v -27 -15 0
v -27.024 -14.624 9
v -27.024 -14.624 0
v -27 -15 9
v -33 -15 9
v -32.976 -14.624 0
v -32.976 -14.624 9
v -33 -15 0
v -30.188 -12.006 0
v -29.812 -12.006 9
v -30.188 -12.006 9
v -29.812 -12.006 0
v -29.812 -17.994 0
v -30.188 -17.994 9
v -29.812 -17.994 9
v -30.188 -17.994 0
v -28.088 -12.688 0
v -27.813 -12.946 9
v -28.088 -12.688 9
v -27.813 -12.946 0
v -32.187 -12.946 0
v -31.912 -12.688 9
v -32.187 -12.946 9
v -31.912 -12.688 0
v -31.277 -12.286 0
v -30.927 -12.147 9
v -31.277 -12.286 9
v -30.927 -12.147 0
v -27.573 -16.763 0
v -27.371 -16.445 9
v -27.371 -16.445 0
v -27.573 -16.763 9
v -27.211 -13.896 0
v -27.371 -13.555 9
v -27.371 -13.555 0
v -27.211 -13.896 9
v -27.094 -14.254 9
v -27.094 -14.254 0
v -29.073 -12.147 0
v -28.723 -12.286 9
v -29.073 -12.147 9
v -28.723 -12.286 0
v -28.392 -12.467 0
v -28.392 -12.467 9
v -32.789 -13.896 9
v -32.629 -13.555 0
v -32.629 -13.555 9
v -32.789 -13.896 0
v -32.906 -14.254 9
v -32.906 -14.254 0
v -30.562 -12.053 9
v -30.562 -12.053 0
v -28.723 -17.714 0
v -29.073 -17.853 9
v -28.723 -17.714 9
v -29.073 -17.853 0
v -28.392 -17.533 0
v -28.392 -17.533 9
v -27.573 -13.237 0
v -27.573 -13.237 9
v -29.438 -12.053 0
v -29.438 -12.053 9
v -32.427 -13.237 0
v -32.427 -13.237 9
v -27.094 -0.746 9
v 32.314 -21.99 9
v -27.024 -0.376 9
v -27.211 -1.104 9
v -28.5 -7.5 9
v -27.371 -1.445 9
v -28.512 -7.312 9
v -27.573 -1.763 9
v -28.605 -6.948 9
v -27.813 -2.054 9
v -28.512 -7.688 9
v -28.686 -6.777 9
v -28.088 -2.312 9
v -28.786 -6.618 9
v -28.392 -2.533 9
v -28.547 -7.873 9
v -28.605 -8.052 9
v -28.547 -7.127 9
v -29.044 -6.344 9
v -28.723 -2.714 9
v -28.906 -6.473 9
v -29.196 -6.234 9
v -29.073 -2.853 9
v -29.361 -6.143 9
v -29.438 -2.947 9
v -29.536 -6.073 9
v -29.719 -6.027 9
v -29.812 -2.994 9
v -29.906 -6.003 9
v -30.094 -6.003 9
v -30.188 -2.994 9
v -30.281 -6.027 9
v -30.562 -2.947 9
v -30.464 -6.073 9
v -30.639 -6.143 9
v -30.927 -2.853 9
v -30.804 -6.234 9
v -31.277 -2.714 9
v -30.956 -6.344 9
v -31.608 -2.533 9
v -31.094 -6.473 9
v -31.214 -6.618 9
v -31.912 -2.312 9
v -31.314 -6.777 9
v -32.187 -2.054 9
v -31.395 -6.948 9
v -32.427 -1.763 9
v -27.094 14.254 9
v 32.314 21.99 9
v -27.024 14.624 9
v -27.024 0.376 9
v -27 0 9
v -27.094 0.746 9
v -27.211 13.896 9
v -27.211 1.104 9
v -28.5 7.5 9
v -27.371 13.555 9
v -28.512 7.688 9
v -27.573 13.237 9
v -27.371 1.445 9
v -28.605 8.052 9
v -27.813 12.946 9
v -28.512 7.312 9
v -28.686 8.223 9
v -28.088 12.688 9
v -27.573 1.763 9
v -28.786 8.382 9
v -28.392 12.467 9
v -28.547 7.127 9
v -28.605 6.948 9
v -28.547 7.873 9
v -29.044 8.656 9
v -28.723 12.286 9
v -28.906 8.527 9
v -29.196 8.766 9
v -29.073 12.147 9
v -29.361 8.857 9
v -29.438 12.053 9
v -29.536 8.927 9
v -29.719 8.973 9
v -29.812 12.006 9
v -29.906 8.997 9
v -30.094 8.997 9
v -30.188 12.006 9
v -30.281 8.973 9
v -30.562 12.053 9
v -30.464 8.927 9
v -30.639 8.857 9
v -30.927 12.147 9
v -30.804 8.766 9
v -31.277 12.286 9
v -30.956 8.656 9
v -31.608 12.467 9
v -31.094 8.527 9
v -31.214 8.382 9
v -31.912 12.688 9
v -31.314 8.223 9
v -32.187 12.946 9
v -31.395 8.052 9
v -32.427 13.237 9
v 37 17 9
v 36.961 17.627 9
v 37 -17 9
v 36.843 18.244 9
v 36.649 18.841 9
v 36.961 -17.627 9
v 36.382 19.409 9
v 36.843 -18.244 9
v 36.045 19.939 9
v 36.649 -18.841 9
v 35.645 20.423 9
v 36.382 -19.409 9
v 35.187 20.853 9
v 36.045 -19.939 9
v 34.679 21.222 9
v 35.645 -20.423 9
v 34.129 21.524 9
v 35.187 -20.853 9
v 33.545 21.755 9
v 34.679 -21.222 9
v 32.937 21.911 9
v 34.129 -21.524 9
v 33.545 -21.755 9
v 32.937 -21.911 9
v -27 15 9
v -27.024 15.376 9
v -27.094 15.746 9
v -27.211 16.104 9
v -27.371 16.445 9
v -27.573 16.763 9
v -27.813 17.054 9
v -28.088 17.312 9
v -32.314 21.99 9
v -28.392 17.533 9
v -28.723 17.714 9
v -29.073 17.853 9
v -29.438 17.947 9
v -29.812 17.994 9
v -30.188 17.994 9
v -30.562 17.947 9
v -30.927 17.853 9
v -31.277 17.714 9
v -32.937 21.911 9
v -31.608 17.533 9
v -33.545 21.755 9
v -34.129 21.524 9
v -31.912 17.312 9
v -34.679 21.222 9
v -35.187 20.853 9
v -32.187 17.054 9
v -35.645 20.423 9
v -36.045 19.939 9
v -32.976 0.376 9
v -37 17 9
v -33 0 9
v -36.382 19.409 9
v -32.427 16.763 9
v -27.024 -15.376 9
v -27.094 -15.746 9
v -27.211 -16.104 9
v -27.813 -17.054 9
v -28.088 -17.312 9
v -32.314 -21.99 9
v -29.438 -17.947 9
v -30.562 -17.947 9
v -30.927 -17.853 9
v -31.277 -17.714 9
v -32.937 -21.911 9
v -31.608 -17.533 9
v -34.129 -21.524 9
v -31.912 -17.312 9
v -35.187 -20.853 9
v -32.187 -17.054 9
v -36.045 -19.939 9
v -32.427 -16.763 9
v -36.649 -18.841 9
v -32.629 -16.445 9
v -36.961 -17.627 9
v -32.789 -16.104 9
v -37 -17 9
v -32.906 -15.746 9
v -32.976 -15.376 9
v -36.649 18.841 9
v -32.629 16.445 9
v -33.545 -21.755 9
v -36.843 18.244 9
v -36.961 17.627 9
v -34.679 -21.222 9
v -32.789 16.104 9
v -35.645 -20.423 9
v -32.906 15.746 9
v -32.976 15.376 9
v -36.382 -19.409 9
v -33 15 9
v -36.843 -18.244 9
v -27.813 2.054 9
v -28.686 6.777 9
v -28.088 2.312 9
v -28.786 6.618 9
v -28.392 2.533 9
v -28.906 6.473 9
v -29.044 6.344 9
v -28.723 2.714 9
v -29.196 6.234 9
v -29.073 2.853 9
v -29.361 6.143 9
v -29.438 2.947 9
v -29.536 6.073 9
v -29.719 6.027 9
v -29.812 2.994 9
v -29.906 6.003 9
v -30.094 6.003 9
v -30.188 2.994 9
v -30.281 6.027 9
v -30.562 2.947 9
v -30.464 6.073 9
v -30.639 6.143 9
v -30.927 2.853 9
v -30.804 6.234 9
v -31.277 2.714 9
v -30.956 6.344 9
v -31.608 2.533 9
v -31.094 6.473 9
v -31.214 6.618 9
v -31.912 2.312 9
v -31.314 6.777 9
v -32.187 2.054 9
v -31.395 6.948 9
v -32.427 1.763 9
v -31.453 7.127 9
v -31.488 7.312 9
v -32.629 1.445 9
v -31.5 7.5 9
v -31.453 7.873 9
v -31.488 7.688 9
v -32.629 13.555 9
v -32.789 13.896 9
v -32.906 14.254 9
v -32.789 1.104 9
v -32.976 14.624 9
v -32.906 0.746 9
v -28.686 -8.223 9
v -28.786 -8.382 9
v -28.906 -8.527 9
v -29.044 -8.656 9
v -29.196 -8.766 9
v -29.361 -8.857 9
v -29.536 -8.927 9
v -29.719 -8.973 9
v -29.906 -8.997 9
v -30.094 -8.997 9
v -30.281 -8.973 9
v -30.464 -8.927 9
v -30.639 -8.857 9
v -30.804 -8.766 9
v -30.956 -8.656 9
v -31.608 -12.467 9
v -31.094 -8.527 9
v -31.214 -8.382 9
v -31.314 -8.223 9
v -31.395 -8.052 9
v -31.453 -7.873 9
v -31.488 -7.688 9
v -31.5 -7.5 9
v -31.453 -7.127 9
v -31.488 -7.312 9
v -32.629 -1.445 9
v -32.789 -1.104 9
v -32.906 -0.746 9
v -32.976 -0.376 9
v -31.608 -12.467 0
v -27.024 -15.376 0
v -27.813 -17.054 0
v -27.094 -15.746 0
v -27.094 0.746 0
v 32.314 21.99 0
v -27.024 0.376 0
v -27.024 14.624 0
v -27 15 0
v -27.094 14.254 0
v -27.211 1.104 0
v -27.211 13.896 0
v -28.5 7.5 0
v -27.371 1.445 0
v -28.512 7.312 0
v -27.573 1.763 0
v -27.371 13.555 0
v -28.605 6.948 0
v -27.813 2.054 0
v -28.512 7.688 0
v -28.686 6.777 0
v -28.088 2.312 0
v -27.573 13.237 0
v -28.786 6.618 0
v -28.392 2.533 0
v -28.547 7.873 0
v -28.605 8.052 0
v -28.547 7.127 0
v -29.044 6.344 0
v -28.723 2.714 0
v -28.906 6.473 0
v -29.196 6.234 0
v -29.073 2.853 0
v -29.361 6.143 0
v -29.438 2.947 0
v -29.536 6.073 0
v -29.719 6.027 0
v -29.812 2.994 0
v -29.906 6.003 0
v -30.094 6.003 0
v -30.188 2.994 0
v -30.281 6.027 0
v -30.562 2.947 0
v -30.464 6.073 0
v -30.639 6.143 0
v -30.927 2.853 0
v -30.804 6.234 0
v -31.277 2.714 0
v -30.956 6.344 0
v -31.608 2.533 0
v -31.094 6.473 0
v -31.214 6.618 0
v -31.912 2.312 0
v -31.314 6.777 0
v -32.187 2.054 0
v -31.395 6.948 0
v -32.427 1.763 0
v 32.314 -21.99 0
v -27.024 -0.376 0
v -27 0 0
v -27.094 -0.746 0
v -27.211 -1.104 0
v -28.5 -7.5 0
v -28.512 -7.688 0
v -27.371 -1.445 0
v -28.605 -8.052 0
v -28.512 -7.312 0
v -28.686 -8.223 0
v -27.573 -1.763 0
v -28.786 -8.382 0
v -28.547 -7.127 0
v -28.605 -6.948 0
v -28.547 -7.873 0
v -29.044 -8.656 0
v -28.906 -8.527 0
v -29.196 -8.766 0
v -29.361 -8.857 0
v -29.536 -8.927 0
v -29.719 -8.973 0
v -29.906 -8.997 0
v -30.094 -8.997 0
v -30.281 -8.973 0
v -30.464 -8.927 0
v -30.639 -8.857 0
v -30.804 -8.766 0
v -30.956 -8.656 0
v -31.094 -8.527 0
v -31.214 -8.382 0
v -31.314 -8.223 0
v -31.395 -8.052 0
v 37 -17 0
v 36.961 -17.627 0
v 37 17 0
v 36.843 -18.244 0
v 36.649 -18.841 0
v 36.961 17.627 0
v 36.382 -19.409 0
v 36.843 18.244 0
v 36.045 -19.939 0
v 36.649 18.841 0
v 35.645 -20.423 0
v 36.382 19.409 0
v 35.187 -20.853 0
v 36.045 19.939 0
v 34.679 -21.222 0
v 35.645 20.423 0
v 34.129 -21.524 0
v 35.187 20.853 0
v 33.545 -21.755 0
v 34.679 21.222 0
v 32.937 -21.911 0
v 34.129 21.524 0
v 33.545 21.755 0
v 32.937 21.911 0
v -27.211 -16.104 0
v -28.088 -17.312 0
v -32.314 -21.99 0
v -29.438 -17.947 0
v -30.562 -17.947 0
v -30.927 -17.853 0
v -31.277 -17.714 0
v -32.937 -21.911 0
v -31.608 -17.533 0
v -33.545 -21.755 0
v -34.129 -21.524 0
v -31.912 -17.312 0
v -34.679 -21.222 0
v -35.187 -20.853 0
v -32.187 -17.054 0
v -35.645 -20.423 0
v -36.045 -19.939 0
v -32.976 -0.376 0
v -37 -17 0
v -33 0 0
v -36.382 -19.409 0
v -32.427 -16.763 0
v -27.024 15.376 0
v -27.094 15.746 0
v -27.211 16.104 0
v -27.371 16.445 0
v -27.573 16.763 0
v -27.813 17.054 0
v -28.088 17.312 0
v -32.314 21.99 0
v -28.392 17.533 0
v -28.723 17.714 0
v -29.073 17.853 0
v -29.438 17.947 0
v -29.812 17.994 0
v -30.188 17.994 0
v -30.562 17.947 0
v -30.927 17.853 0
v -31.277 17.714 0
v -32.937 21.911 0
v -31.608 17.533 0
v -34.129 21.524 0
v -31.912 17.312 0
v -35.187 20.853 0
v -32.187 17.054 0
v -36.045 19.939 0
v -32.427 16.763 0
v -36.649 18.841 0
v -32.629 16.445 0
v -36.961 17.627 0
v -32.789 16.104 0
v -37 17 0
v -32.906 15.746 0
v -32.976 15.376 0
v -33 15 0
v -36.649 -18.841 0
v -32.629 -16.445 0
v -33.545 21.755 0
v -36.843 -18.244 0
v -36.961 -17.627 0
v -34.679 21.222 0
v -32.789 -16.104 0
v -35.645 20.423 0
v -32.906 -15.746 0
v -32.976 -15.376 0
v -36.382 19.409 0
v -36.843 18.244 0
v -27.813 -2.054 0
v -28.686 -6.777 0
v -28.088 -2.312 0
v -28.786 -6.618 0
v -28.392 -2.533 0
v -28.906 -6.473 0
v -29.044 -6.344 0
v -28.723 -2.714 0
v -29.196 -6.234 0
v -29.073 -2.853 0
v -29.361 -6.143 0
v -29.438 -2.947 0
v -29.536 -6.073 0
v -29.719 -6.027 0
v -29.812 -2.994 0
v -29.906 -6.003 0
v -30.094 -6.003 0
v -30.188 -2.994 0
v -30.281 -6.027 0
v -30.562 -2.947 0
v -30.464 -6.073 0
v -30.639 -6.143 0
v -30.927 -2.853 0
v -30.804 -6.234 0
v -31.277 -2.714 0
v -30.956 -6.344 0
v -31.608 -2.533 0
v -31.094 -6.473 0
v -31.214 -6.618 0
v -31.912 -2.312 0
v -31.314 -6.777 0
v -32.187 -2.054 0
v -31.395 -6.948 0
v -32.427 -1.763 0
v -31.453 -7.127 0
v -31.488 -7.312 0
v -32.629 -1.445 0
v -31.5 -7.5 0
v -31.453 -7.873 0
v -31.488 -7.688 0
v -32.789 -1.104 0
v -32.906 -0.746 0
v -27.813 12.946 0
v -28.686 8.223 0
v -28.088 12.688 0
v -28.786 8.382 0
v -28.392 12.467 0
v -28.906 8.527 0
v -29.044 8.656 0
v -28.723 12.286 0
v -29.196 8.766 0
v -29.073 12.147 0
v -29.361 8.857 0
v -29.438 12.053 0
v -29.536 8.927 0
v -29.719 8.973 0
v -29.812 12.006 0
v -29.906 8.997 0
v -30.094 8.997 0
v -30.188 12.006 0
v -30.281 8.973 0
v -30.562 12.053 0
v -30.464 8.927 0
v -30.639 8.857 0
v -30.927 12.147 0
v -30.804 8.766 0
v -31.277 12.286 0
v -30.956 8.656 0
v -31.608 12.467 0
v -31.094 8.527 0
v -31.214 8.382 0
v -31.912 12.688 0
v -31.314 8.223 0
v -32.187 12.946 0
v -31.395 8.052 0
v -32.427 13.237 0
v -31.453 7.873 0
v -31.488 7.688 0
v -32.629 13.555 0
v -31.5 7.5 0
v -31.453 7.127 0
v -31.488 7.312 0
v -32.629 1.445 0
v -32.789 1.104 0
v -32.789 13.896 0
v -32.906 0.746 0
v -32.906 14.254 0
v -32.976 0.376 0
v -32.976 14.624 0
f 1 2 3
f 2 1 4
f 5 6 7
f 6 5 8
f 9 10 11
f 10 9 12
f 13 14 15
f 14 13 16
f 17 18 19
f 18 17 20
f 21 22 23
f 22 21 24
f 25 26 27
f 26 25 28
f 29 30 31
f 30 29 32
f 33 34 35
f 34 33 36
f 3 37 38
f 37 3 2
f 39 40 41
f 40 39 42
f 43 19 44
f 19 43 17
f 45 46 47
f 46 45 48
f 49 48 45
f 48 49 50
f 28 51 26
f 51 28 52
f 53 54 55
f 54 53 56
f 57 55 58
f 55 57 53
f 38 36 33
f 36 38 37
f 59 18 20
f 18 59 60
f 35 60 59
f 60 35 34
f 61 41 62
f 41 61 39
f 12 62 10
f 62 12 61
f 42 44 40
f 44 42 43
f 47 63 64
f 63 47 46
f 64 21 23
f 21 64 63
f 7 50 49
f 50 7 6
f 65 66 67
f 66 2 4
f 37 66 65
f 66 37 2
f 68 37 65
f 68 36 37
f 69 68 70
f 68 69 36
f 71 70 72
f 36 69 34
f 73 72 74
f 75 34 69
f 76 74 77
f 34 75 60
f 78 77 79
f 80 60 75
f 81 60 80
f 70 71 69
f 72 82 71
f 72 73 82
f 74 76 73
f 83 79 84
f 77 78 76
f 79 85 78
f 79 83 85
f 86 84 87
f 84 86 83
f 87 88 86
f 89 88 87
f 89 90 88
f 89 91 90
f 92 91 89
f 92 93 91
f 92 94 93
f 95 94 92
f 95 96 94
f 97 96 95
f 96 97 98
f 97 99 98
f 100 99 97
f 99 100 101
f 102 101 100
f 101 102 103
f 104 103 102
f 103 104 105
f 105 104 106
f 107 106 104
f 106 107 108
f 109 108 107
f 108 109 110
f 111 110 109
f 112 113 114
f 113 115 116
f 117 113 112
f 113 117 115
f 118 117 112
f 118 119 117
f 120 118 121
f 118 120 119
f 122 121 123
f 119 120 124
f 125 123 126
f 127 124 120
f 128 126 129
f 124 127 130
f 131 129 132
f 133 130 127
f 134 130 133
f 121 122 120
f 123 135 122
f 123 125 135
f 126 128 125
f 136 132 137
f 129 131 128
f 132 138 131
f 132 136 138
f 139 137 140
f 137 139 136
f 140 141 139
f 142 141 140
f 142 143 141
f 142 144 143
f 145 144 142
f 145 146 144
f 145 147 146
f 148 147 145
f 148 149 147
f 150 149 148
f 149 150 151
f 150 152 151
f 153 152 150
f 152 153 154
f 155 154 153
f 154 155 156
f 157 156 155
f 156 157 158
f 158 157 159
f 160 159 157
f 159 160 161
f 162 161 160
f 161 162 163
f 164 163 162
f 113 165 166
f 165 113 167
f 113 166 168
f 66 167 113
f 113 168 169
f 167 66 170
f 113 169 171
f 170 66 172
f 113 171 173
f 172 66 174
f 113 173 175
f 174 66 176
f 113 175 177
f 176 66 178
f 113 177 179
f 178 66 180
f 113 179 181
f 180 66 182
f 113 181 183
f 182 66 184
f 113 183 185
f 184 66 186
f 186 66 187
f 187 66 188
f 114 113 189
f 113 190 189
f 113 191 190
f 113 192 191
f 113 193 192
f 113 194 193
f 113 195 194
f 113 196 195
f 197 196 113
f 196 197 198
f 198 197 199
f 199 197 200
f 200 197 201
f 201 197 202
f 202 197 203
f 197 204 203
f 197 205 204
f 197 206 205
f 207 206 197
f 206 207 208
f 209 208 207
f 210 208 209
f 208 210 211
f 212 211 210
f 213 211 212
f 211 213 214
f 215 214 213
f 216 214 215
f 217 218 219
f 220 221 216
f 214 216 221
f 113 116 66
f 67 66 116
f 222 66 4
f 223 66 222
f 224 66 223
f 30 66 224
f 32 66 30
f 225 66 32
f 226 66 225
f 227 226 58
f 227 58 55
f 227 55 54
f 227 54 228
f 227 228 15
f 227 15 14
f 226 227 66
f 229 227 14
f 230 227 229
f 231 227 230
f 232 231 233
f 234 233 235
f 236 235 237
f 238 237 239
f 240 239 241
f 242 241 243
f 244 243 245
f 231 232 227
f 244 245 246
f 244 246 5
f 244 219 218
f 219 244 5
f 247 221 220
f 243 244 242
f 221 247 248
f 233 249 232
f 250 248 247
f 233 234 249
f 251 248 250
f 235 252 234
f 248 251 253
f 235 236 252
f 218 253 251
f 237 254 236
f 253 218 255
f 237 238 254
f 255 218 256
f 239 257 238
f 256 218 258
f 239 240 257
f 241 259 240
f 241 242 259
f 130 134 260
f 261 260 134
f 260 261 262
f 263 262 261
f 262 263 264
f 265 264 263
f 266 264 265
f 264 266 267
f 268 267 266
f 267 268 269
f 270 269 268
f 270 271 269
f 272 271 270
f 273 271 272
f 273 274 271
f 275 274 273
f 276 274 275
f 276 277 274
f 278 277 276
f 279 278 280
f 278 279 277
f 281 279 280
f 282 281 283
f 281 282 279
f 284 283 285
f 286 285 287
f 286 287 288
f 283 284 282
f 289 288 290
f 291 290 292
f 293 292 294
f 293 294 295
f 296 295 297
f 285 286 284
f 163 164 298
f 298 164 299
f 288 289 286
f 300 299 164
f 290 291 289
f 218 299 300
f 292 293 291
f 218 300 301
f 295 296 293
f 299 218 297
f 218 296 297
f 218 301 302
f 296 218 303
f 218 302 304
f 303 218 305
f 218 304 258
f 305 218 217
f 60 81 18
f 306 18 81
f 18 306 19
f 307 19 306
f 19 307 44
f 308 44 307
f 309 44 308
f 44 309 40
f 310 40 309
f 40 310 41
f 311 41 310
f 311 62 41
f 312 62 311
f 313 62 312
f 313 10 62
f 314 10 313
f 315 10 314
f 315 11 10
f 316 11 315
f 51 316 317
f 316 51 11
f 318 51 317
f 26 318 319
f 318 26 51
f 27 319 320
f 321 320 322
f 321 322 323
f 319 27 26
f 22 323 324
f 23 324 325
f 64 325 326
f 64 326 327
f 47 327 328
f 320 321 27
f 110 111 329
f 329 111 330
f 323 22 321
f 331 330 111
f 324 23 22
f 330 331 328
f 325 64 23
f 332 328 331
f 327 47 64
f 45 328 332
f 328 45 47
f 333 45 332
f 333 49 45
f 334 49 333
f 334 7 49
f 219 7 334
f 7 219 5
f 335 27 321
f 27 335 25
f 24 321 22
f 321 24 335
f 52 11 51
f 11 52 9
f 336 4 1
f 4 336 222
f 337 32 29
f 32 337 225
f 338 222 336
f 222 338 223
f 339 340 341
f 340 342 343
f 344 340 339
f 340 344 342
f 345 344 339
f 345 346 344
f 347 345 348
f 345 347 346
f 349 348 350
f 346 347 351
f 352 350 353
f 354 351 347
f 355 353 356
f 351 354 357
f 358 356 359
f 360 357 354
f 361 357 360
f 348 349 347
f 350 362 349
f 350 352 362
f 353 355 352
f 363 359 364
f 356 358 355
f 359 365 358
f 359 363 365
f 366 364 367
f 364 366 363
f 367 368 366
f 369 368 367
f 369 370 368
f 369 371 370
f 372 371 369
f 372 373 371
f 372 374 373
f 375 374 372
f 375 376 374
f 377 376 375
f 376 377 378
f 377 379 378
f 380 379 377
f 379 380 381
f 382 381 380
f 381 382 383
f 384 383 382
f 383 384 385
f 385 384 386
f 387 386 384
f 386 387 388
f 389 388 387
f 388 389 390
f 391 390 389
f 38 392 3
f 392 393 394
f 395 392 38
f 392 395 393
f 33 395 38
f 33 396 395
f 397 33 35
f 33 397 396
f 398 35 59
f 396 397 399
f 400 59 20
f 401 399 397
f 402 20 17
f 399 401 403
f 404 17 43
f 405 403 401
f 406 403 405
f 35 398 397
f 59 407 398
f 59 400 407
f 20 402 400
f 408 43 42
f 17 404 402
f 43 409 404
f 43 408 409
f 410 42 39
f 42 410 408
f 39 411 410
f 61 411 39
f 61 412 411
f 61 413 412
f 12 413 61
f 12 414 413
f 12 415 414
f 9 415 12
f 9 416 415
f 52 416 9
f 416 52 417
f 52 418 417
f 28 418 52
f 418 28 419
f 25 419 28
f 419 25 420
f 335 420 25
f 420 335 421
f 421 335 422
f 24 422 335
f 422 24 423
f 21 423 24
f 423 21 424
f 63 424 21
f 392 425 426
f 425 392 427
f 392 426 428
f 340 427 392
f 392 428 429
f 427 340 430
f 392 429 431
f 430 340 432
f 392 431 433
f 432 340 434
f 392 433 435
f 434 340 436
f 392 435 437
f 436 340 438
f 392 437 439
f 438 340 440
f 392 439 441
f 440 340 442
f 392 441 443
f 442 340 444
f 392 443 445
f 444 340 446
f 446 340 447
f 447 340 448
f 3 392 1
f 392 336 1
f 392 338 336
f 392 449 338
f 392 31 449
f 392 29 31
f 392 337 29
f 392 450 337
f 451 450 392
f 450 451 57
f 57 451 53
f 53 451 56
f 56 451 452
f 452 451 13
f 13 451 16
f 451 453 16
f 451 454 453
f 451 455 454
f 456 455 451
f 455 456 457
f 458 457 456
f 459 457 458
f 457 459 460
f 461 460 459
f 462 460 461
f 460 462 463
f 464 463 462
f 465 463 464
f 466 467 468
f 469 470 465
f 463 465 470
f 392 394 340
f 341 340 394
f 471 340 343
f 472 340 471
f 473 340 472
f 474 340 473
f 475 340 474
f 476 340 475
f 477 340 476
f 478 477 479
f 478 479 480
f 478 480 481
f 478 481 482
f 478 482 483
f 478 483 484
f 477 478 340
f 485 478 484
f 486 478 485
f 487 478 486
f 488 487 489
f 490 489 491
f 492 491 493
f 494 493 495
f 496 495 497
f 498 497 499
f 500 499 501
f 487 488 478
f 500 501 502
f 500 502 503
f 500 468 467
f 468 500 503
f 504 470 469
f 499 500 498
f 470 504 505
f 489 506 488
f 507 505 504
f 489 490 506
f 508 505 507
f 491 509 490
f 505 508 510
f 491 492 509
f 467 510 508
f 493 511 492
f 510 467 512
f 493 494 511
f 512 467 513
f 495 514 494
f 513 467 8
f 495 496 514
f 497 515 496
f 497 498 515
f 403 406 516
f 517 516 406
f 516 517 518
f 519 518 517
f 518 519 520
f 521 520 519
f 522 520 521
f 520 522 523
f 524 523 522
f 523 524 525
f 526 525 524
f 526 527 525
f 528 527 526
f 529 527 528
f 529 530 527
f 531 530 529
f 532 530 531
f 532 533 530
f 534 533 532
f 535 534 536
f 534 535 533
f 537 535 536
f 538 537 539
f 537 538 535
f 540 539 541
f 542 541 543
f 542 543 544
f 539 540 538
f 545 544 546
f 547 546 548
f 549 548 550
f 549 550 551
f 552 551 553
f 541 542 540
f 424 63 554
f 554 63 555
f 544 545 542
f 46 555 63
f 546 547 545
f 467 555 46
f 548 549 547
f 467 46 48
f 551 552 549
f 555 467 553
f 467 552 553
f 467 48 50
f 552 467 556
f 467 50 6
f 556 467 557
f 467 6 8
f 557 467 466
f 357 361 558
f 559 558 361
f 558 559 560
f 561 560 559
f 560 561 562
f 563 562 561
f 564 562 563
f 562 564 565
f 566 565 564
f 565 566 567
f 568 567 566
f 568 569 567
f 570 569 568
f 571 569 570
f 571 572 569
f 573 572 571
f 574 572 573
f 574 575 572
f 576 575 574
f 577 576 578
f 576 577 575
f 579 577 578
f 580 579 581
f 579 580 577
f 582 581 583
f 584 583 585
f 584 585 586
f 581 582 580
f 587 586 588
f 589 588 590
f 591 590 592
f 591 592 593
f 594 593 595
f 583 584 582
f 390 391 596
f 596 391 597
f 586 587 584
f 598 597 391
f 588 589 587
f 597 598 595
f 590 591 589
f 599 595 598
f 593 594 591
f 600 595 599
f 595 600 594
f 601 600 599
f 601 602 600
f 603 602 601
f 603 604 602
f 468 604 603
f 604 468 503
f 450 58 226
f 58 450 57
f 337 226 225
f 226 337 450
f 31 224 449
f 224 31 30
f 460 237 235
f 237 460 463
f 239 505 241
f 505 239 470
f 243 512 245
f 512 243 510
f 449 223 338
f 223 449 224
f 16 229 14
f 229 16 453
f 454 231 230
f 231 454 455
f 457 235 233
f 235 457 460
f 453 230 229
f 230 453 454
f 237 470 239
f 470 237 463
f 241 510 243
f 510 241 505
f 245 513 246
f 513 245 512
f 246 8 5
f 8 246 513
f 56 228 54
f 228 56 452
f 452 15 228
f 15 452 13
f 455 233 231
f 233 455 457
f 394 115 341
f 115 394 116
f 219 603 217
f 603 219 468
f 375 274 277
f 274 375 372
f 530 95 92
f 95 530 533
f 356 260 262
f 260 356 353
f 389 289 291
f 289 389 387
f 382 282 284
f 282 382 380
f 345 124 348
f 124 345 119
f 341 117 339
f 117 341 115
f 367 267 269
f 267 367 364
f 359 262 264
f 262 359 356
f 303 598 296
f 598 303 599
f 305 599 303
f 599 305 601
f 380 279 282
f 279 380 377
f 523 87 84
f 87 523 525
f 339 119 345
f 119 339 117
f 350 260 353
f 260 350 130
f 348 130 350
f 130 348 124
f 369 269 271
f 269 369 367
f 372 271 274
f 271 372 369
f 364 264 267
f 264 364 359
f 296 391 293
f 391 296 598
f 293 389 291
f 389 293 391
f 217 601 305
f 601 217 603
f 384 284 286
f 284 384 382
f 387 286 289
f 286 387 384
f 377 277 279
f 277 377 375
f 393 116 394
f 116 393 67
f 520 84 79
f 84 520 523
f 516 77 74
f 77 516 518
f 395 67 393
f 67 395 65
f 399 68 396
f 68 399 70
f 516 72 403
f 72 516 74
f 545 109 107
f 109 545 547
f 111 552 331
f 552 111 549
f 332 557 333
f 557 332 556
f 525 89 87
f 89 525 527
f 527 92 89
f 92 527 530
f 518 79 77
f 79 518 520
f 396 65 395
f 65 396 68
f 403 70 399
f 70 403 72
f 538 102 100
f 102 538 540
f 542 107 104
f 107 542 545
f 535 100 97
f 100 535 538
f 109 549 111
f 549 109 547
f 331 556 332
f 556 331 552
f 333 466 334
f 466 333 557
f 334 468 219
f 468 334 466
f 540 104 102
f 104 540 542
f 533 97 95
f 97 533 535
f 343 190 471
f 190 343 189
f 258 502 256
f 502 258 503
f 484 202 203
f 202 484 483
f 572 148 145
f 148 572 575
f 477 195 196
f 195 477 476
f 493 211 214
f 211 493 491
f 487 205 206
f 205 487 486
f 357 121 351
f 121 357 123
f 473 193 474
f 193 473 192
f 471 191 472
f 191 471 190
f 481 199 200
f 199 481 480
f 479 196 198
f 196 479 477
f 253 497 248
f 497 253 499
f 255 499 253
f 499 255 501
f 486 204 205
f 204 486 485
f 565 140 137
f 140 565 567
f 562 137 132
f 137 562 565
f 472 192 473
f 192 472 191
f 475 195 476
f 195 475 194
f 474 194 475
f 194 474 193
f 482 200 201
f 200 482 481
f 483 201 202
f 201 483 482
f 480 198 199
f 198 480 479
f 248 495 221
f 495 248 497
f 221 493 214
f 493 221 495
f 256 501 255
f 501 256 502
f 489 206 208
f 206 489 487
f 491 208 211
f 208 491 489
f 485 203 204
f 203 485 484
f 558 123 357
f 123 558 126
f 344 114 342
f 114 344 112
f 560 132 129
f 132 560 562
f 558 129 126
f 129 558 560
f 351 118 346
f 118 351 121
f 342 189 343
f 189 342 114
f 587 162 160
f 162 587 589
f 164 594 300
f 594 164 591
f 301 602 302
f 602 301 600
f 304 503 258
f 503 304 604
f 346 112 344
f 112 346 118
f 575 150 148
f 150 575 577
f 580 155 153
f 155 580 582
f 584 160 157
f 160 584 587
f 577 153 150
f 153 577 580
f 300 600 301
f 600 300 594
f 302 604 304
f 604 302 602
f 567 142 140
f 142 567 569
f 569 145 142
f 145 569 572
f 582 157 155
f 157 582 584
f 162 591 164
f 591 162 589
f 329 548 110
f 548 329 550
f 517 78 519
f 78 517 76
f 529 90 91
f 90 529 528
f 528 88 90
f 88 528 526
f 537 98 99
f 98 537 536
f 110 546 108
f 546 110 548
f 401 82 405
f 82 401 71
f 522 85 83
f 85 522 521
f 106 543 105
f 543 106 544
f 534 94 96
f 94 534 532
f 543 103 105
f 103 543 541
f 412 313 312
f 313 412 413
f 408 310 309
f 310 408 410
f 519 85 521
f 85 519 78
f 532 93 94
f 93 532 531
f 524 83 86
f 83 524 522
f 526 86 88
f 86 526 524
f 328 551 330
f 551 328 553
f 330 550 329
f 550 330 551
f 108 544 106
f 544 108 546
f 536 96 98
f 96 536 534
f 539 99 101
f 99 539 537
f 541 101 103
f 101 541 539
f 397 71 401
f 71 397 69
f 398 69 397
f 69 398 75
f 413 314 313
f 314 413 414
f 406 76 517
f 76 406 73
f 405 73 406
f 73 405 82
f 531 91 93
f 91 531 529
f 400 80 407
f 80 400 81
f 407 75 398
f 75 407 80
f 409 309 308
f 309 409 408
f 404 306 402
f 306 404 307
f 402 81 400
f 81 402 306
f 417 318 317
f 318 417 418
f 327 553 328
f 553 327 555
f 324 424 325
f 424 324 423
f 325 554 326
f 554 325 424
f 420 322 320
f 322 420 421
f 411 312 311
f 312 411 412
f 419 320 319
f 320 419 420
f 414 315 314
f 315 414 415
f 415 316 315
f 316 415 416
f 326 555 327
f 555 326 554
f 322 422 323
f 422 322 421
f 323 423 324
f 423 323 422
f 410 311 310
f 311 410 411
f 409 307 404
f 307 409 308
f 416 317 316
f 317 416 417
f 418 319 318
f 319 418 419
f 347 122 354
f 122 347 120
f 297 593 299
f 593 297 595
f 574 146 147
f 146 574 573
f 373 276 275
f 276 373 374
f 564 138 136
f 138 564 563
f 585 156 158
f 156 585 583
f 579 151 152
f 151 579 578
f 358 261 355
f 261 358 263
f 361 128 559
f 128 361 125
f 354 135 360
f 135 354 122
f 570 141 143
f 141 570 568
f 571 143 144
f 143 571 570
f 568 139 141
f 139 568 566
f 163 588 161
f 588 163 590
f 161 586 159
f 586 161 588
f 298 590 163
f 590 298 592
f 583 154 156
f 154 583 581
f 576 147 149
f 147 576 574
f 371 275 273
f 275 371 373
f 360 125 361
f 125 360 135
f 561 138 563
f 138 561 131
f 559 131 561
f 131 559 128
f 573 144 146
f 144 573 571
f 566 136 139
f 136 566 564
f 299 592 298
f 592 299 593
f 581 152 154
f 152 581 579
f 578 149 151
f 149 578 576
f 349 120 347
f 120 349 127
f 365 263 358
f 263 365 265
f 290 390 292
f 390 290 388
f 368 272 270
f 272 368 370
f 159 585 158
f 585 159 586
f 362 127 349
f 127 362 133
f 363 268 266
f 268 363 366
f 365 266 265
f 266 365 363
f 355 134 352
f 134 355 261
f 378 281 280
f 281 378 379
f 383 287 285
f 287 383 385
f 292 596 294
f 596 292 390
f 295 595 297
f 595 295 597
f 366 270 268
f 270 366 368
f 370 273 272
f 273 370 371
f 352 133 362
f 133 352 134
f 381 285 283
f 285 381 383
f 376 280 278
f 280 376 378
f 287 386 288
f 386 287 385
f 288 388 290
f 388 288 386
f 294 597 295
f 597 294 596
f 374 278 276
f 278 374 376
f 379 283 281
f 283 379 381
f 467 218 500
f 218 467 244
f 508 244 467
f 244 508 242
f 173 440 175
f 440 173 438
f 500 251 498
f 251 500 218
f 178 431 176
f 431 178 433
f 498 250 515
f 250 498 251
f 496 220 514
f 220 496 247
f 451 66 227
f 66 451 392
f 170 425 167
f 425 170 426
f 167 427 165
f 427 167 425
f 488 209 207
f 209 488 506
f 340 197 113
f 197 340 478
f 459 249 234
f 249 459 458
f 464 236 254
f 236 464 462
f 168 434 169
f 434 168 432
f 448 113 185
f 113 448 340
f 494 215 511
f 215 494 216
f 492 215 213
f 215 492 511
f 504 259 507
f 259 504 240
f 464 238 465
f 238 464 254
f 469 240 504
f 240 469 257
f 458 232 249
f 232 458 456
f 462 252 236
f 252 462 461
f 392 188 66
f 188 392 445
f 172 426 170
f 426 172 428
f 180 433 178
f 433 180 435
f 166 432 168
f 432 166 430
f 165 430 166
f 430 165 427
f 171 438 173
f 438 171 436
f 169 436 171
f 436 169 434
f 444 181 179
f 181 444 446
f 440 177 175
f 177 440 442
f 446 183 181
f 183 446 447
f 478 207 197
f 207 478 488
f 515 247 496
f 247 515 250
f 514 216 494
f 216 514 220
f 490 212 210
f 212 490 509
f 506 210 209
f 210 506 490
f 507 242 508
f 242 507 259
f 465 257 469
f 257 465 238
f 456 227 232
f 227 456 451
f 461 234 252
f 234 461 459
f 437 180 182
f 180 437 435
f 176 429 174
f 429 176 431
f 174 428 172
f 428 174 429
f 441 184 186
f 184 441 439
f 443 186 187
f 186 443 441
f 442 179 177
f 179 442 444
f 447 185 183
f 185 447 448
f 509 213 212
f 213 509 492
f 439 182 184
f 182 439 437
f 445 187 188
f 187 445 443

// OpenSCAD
$fn = 50;


difference() {
	union() {
		hull() {
			translate(v = [-32.0000000000, 17.0000000000, 0]) {
				cylinder(h = 9, r = 5);
			}
			translate(v = [32.0000000000, 17.0000000000, 0]) {
				cylinder(h = 9, r = 5);
			}
			translate(v = [-32.0000000000, -17.0000000000, 0]) {
				cylinder(h = 9, r = 5);
			}
			translate(v = [32.0000000000, -17.0000000000, 0]) {
				cylinder(h = 9, r = 5);
			}
		}
	}
	union() {
		translate(v = [-30.0000000000, -15.0000000000, 0]) {
			cylinder(h = 9, r = 3.0000000000);
		}
		translate(v = [-30.0000000000, 0.0000000000, 0]) {
			cylinder(h = 9, r = 3.0000000000);
		}
		translate(v = [-30.0000000000, 15.0000000000, 0]) {
			cylinder(h = 9, r = 3.0000000000);
		}
		translate(v = [-30.0000000000, -15.0000000000, 0]) {
			cylinder(h = 9, r = 1.5000000000);
		}
		translate(v = [-30.0000000000, -7.5000000000, 0]) {
			cylinder(h = 9, r = 1.5000000000);
		}
		translate(v = [-30.0000000000, 0.0000000000, 0]) {
			cylinder(h = 9, r = 1.5000000000);
		}
		translate(v = [-30.0000000000, 7.5000000000, 0]) {
			cylinder(h = 9, r = 1.5000000000);
		}
		translate(v = [-30.0000000000, 15.0000000000, 0]) {
			cylinder(h = 9, r = 1.5000000000);
		}
		translate(v = [-30.0000000000, -15.0000000000, 0]) {
			cylinder(h = 9, r = 1.5000000000);
		}
		translate(v = [-30.0000000000, -7.5000000000, 0]) {
			cylinder(h = 9, r = 1.5000000000);
		}
		translate(v = [-30.0000000000, 0.0000000000, 0]) {
			cylinder(h = 9, r = 1.5000000000);
		}
		translate(v = [-30.0000000000, 7.5000000000, 0]) {
			cylinder(h = 9, r = 1.5000000000);
		}
		translate(v = [-30.0000000000, 15.0000000000, 0]) {
			cylinder(h = 9, r = 1.5000000000);
		}
		translate(v = [-30.0000000000, -15.0000000000, 0]) {
			cylinder(h = 9, r = 1.5000000000);
		}
		translate(v = [-30.0000000000, -7.5000000000, 0]) {
			cylinder(h = 9, r = 1.5000000000);
		}
		translate(v = [-30.0000000000, 0.0000000000, 0]) {
			cylinder(h = 9, r = 1.5000000000);
		}
		translate(v = [-30.0000000000, 7.5000000000, 0]) {
			cylinder(h = 9, r = 1.5000000000);
		}
		translate(v = [-30.0000000000, 15.0000000000, 0]) {
			cylinder(h = 9, r = 1.5000000000);
		}
	}
}
